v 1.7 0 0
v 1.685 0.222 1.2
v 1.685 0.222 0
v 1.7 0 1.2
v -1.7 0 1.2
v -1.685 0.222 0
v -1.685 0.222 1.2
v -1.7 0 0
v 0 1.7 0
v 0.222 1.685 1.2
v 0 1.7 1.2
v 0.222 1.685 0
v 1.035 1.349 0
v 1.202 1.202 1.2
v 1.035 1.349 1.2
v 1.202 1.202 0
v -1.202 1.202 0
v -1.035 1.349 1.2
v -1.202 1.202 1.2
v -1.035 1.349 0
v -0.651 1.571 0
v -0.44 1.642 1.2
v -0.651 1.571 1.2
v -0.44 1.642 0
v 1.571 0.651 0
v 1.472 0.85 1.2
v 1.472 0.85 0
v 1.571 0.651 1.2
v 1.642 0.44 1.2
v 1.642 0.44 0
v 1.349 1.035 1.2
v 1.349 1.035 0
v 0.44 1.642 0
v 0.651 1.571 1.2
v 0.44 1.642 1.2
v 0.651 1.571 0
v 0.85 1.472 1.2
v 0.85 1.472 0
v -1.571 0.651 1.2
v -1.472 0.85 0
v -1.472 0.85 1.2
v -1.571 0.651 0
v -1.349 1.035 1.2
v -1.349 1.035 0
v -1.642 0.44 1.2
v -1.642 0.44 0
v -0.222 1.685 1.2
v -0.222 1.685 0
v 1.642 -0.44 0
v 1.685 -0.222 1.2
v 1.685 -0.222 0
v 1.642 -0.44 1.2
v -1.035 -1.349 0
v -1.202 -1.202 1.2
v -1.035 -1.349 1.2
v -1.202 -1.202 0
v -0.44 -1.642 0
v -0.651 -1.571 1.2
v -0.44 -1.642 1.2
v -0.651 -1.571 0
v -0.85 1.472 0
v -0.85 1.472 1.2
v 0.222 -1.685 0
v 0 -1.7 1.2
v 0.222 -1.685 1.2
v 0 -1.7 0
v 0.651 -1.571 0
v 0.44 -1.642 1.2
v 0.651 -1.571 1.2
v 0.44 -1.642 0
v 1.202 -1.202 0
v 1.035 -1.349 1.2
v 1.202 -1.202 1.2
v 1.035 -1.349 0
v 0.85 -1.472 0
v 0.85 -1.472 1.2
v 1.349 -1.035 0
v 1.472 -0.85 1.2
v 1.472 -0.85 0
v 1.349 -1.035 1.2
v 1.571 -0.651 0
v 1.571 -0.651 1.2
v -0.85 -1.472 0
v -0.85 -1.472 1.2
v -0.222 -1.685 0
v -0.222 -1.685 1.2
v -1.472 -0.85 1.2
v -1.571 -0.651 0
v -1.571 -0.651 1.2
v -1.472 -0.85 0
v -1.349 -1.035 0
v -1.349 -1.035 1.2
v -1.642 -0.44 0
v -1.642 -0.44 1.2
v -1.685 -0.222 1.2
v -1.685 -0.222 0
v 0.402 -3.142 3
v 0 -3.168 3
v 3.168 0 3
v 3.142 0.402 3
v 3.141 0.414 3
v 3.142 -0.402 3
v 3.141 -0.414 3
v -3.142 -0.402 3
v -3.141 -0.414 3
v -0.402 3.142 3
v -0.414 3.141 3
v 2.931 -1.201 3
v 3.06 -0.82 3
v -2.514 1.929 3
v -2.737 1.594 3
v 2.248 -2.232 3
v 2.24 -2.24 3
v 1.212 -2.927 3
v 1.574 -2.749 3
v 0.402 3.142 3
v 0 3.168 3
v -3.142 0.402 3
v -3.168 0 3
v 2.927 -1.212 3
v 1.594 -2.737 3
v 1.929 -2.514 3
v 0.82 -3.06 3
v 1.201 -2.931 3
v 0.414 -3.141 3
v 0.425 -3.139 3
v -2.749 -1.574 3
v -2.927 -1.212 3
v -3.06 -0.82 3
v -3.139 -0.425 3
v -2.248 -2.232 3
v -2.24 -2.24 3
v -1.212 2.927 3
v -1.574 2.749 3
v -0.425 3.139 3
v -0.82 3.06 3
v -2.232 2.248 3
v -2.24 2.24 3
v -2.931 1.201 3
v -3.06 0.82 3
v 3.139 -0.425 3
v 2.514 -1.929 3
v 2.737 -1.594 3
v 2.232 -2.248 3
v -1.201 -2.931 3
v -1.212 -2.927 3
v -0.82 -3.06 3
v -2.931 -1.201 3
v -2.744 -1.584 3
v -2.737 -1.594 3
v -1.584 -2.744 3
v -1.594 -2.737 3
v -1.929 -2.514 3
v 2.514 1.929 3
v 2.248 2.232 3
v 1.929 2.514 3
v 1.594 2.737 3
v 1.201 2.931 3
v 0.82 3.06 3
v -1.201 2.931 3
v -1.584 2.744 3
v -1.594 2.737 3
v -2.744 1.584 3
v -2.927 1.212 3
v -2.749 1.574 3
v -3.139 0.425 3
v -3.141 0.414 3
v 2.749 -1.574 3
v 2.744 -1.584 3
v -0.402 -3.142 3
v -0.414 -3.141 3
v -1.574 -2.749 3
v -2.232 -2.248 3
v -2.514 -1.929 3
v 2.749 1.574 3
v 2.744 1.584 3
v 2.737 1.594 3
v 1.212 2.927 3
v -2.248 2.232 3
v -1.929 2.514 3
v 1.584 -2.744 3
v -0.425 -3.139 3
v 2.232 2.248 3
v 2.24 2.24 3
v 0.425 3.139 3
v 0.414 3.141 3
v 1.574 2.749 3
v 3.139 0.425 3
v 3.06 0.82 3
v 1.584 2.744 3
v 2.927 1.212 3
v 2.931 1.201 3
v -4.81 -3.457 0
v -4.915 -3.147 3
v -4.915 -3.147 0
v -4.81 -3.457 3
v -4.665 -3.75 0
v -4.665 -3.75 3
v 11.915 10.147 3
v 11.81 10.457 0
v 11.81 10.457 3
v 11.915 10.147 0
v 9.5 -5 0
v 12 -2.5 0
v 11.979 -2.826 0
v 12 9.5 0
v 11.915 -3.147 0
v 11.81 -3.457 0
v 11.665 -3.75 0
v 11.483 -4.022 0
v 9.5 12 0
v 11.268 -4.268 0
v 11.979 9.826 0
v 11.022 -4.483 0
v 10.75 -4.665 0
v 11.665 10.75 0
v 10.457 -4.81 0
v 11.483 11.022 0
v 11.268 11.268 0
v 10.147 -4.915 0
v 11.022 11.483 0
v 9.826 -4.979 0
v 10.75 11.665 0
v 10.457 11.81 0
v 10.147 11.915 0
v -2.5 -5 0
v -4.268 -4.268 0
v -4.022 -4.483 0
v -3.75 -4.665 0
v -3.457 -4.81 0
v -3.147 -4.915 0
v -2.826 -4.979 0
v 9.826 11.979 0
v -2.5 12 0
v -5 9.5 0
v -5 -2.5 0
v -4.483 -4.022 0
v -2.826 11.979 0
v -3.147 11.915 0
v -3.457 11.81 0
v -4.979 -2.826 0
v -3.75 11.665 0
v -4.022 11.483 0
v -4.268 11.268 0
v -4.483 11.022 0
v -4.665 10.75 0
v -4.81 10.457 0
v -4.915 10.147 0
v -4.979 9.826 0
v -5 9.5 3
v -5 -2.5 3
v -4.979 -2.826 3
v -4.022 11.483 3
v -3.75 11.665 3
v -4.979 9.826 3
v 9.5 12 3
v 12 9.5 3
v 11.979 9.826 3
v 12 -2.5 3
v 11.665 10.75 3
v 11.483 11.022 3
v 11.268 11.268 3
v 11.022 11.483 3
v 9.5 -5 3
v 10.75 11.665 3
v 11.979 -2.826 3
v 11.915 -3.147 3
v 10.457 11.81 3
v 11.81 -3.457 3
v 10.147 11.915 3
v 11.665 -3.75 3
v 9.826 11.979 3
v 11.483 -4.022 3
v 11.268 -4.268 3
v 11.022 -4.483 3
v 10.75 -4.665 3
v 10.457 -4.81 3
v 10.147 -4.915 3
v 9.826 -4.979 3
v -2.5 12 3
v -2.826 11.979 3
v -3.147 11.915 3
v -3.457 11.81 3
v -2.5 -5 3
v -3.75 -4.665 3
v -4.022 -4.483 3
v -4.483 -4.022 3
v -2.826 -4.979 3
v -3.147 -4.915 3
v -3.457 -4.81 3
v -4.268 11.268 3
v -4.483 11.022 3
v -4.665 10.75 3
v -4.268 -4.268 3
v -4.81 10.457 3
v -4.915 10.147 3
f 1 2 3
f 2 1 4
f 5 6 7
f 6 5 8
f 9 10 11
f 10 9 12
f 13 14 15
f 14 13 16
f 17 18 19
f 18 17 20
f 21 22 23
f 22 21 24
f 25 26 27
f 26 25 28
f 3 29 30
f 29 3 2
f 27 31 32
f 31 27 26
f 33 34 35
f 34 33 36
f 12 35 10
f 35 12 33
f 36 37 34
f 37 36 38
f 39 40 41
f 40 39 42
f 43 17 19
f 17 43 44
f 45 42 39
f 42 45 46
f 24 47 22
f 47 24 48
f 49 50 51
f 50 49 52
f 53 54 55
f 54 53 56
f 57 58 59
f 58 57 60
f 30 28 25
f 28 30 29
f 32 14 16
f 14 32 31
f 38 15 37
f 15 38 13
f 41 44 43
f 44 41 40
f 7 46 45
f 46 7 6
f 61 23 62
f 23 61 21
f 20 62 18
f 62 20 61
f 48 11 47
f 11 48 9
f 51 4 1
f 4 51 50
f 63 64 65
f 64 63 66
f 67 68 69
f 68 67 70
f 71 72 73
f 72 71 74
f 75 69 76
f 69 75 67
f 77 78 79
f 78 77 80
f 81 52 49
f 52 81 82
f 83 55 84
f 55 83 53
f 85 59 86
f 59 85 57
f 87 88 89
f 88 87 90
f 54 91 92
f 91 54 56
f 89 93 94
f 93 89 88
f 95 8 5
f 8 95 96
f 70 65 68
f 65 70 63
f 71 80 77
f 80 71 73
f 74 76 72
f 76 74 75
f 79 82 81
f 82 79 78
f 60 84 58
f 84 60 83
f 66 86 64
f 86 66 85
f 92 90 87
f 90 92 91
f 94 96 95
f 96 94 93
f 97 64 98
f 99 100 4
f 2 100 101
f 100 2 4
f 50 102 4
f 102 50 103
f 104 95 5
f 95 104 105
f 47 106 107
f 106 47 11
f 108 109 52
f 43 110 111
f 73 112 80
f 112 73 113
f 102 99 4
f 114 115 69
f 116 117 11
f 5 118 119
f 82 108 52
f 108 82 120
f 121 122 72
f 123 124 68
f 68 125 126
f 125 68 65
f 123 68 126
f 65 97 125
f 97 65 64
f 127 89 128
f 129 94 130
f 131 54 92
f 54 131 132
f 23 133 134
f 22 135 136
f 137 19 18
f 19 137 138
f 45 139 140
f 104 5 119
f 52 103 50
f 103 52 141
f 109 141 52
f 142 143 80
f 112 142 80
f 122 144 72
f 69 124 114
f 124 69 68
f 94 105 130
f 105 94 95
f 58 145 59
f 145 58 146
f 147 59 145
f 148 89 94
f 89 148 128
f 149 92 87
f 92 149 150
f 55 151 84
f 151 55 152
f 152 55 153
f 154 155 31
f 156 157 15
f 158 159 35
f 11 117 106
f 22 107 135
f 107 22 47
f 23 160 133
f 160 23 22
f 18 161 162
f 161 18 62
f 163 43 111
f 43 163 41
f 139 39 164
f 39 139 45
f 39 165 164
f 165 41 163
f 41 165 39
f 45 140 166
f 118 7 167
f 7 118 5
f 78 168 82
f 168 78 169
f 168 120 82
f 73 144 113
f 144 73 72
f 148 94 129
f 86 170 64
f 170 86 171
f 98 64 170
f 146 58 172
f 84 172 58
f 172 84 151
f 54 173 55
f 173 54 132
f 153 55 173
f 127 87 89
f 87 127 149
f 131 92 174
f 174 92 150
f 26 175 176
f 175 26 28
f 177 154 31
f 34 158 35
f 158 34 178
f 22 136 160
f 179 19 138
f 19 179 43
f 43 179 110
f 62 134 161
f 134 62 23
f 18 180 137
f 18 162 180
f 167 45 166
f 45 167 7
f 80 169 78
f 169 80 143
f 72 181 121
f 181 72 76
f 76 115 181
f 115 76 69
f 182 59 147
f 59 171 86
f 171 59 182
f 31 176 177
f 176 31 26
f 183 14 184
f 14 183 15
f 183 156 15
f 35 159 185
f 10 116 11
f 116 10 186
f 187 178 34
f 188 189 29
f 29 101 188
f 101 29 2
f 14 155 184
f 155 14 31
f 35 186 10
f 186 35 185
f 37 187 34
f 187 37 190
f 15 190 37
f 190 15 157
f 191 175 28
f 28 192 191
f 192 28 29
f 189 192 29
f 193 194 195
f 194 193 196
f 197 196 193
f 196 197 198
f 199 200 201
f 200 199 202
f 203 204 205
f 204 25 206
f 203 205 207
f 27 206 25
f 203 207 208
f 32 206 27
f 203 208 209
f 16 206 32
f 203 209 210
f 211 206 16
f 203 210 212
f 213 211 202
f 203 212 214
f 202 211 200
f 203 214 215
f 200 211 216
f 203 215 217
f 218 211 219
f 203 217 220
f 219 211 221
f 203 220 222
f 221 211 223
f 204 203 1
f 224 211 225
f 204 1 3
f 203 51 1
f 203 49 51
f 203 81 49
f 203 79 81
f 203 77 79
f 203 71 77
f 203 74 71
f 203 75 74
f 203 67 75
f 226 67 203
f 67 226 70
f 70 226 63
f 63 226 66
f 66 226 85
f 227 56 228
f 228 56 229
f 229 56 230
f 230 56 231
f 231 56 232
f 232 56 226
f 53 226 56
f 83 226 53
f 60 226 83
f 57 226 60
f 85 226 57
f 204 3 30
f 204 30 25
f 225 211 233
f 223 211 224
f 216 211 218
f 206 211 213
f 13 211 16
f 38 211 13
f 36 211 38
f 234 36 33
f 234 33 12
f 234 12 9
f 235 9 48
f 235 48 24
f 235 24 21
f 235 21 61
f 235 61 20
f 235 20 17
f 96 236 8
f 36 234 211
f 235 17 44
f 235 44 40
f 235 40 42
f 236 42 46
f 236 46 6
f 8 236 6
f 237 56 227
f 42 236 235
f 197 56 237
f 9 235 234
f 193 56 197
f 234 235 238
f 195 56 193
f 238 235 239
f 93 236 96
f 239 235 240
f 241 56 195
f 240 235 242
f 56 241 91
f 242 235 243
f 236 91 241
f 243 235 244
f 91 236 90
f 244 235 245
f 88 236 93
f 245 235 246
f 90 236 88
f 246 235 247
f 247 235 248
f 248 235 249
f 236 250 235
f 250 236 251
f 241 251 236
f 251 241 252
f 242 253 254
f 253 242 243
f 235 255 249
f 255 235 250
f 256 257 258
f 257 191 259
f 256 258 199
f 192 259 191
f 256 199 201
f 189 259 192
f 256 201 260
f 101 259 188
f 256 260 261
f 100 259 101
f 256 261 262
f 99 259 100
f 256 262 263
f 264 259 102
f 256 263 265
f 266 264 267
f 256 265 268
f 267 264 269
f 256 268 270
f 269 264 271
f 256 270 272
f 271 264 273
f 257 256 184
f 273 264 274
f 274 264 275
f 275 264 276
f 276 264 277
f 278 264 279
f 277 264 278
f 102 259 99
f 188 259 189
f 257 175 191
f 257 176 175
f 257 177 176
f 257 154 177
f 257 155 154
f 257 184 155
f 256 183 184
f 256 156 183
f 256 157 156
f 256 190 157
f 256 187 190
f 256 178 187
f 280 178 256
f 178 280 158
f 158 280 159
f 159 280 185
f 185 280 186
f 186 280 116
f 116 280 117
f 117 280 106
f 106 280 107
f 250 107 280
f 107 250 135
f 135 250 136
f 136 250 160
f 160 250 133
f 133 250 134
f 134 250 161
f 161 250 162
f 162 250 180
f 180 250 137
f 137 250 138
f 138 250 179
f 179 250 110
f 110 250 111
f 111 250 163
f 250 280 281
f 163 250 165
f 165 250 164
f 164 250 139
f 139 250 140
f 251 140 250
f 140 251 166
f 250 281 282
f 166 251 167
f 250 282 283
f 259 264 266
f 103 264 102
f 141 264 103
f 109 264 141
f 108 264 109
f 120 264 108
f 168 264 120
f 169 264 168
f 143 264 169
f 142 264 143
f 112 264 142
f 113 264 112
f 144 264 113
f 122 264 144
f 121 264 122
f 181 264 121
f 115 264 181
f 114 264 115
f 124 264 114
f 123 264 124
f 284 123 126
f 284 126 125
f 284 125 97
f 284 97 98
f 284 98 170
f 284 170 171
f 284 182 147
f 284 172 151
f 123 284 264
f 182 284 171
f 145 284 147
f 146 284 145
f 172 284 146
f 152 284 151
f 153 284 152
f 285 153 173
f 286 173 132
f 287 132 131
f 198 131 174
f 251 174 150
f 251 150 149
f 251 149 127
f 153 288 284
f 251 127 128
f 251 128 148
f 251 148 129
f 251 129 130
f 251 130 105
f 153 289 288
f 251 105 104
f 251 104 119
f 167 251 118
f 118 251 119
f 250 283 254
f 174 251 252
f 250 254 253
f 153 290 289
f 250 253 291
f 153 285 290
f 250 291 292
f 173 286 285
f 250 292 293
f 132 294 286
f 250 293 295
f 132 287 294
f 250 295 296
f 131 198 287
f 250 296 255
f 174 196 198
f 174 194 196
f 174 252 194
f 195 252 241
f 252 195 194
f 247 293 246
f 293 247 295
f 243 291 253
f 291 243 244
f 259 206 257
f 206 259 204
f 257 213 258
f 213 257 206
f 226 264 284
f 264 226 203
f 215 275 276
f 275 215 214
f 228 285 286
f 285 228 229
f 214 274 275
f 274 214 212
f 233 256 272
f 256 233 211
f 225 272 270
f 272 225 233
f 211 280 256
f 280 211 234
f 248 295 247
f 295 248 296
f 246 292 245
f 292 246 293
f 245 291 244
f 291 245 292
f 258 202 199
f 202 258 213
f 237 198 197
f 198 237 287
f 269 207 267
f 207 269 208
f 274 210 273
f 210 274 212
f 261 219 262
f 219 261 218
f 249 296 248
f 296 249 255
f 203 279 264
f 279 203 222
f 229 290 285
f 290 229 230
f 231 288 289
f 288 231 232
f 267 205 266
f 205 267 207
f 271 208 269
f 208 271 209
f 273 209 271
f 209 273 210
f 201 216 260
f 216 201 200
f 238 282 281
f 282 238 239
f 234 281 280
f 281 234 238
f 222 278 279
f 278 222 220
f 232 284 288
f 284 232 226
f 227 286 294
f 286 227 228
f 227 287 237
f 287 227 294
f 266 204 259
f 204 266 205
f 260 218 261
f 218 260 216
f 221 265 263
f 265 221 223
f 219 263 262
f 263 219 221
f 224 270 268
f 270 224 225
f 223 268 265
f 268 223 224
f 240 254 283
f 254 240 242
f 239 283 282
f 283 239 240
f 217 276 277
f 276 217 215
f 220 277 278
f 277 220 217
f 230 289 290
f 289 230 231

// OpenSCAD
// ==============================================================================
// Rear Corner Leveling Foot (Hoekstuk voor Eerste en Laatste Paneel)
// For Modular 7-Segment Display / Clock / Scoreboard
// ==============================================================================
//
// Purpose:
// When multiple modular panels are joined together, the rear joining brackets
// (both rigid and hinged versions) are 3.0 mm thick and sit on the rear seams.
// When the assembled display is laid flat on a table, the middle seams rest on the
// brackets, but the outer corners of the first and last panel would float in the air.
//
// This corner foot mounts to the outer corner M3 screw hole of the first and last
// panels. It has the exact same 3.0 mm thickness so the entire display rests
// 100% level, flat, and wobble-free on any table or surface!
//
// Universal 4-Corner Symmetry:
// - Outer edges are inset by 1.0 mm (edge_margin = 5.0 mm from screw center,
//   matching the 6.0 mm housing edge of the panel).
// - Inward extension is 12.0 mm along both X and Y, matching the 17.0 mm depth
//   of the rear joining brackets.
// - Symmetrical across the corner diagonal: a single 3D-printed part fits ANY of
//   the 4 outer corners (Top-Left, Bottom-Left, Top-Right, Bottom-Right) simply
//   by rotating it in 90-degree steps!
// - Countersunk M3 screw hole allows the screw head to sit completely flush.
// ==============================================================================

/* [Configuration] */
// What to generate
part = 1; // [1:"single - 1 Corner foot", 2:"pair - 2 Corner feet on bed", 3:"set4 - Set of 4 Corner feet on bed (for all 4 corners)"]

// Foot style
style = "solid"; // ["solid": Flat bottom for maximum surface contact, "bumper_recess": Bottom recess for 8mm rubber bumpon / silicone pad]

/* [Mechanical Dimensions] */
thickness   = 3.0;  // Matches rigid and hinged rear joining brackets (3.0 mm)
edge_margin = 5.0;  // Distance from screw center to outer edge (stays 1.0mm inside 6.0mm housing rim)
inward_len  = 12.0; // Distance from screw center inward towards display center
fillet_r    = 2.5;  // Outer corner radius (matches rear joining bracket)

// M3 Countersunk screw hole (DIN 7991)
screw_d     = 3.4;  // Clearance diameter for M3
cs_d        = 6.5;  // Countersink outer diameter (M3 DIN 7991 head is 6.0mm)
cs_depth    = 1.8;  // Countersink cone depth

// Optional anti-slip bumper recess on bottom face
bumper_d    = 8.5;  // Diameter for standard 8mm rubber foot
bumper_depth= 0.8;  // Recess depth into bottom face

/* [Resolution] */
$fn = 48;

// ==============================================================================
// GEOMETRY
// ==============================================================================
// Screw center is at (0, 0)
// Outer corner is towards (-edge_margin, -edge_margin)
// Inward edges extend to (+inward_len, +inward_len)
// Total size = (edge_margin + inward_len) x (edge_margin + inward_len) = 17.0 x 17.0 mm

total_size = edge_margin + inward_len; // 17.0 mm
x_min = -edge_margin;
x_max = inward_len;
y_min = -edge_margin;
y_max = inward_len;

module rear_corner_foot(style = style) {
    difference() {
        // Base plate body with rounded corners
        linear_extrude(height = thickness) {
            hull() {
                translate([x_min + fillet_r, y_min + fillet_r]) circle(r = fillet_r);
                translate([x_max - fillet_r, y_min + fillet_r]) circle(r = fillet_r);
                translate([x_max - fillet_r, y_max - fillet_r]) circle(r = fillet_r);
                translate([x_min + fillet_r, y_max - fillet_r]) circle(r = fillet_r);
            }
        }
        
        // M3 Countersunk Screw Hole (countersink on top face Z = thickness)
        translate([0, 0, -0.2]) {
            cylinder(h = thickness + 0.4, d = screw_d);
            translate([0, 0, thickness - cs_depth + 0.2])
                cylinder(h = cs_depth + 0.1, d1 = screw_d, d2 = cs_d);
        }
        
        // Optional rubber bumper recess on bottom face (Z = 0)
        if (style == "bumper_recess") {
            // Offset slightly toward center of foot pad
            translate([(x_min + x_max)/2 + 1.0, (y_min + y_max)/2 + 1.0, -0.1])
                cylinder(h = bumper_depth + 0.1, d = bumper_d);
        }
        
        // Subtle decorative corner indicator notch on the outer corner
        // to visually show which corner aligns with the outside corner of the display
        translate([x_min, y_min, thickness - 0.4])
            rotate([0, 0, 45])
                cube([2.0, 0.6, 1.0], center = true);
    }
}

// Multi-part Bed Layouts
module rear_corner_foot_pair(spacing = 4.0) {
    translate([-total_size/2 - spacing/2, 0, 0])
        rear_corner_foot();
    translate([total_size/2 + spacing/2, 0, 0])
        rear_corner_foot();
}

module rear_corner_foot_set4(spacing = 4.0) {
    for (ix = [-1, 1]) {
        for (iy = [-1, 1]) {
            translate([ix * (total_size/2 + spacing/2), iy * (total_size/2 + spacing/2), 0])
                rear_corner_foot();
        }
    }
}

// Assembled Demonstration Preview on Panel Outer Corner
module corner_foot_assembly_preview() {
    corner_span = 40.0;
    
    // Panel Housing Outer Corner (charcoal)
    color("#1e293b", 0.6) {
        difference() {
            translate([-corner_span, -corner_span, -13.0])
                cube([corner_span, corner_span, 13.0]);
            translate([-corner_span - 0.1, -corner_span - 0.1, -13.0 + 2.0])
                cube([corner_span - 2.0 + 0.1, corner_span - 2.0 + 0.1, 12.0]);
        }
    }
    
    // Corner screw post inside housing
    color("#334155")
        translate([-6.0, -6.0, -11.0])
            difference() {
                cylinder(h = 11.0, r = 4.0);
                cylinder(h = 11.1, r = 2.1); // M3 heat-set insert hole
            }
            
    // Backplate corner section (semi-transparent slate)
    color("#475569", 0.7)
        translate([-corner_span + 2.2, -corner_span + 2.2, -2.0])
            difference() {
                cube([corner_span - 2.2, corner_span - 2.2, 2.0]);
                translate([-6.0 - (-corner_span + 2.2), -6.0 - (-corner_span + 2.2), -0.1])
                    cylinder(h = 2.2, d = 3.4);
            }
            
    // Mounted Rear Corner Leveling Foot (at screw center X = -6.0, Y = -6.0)
    translate([-6.0, -6.0, 0])
        rotate([0, 0, 180])
            color("#0284c7")
                rear_corner_foot(style = style);
                
    // Flush M3 Countersunk Screw (gold)
    color("#f59e0b")
        translate([-6.0, -6.0, thickness])
            rotate([180, 0, 0])
                union() {
                    cylinder(h = 1.8, d1 = 6.0, d2 = 3.0);
                    translate([0, 0, 1.8])
                        cylinder(h = 10.0, d = 3.0);
                }
}

// Top-Level Selector
if (part == 1 || part == "single") {
    color("#0284c7")
        rear_corner_foot(style = style);
} else if (part == 2 || part == "pair") {
    color("#0284c7")
        rear_corner_foot_pair(spacing = 4.0);
} else if (part == 3 || part == "set4" || part == "set") {
    color("#0284c7")
        rear_corner_foot_set4(spacing = 4.0);
} else if (part == 4 || part == "assembly" || part == "preview") {
    corner_foot_assembly_preview();
}
